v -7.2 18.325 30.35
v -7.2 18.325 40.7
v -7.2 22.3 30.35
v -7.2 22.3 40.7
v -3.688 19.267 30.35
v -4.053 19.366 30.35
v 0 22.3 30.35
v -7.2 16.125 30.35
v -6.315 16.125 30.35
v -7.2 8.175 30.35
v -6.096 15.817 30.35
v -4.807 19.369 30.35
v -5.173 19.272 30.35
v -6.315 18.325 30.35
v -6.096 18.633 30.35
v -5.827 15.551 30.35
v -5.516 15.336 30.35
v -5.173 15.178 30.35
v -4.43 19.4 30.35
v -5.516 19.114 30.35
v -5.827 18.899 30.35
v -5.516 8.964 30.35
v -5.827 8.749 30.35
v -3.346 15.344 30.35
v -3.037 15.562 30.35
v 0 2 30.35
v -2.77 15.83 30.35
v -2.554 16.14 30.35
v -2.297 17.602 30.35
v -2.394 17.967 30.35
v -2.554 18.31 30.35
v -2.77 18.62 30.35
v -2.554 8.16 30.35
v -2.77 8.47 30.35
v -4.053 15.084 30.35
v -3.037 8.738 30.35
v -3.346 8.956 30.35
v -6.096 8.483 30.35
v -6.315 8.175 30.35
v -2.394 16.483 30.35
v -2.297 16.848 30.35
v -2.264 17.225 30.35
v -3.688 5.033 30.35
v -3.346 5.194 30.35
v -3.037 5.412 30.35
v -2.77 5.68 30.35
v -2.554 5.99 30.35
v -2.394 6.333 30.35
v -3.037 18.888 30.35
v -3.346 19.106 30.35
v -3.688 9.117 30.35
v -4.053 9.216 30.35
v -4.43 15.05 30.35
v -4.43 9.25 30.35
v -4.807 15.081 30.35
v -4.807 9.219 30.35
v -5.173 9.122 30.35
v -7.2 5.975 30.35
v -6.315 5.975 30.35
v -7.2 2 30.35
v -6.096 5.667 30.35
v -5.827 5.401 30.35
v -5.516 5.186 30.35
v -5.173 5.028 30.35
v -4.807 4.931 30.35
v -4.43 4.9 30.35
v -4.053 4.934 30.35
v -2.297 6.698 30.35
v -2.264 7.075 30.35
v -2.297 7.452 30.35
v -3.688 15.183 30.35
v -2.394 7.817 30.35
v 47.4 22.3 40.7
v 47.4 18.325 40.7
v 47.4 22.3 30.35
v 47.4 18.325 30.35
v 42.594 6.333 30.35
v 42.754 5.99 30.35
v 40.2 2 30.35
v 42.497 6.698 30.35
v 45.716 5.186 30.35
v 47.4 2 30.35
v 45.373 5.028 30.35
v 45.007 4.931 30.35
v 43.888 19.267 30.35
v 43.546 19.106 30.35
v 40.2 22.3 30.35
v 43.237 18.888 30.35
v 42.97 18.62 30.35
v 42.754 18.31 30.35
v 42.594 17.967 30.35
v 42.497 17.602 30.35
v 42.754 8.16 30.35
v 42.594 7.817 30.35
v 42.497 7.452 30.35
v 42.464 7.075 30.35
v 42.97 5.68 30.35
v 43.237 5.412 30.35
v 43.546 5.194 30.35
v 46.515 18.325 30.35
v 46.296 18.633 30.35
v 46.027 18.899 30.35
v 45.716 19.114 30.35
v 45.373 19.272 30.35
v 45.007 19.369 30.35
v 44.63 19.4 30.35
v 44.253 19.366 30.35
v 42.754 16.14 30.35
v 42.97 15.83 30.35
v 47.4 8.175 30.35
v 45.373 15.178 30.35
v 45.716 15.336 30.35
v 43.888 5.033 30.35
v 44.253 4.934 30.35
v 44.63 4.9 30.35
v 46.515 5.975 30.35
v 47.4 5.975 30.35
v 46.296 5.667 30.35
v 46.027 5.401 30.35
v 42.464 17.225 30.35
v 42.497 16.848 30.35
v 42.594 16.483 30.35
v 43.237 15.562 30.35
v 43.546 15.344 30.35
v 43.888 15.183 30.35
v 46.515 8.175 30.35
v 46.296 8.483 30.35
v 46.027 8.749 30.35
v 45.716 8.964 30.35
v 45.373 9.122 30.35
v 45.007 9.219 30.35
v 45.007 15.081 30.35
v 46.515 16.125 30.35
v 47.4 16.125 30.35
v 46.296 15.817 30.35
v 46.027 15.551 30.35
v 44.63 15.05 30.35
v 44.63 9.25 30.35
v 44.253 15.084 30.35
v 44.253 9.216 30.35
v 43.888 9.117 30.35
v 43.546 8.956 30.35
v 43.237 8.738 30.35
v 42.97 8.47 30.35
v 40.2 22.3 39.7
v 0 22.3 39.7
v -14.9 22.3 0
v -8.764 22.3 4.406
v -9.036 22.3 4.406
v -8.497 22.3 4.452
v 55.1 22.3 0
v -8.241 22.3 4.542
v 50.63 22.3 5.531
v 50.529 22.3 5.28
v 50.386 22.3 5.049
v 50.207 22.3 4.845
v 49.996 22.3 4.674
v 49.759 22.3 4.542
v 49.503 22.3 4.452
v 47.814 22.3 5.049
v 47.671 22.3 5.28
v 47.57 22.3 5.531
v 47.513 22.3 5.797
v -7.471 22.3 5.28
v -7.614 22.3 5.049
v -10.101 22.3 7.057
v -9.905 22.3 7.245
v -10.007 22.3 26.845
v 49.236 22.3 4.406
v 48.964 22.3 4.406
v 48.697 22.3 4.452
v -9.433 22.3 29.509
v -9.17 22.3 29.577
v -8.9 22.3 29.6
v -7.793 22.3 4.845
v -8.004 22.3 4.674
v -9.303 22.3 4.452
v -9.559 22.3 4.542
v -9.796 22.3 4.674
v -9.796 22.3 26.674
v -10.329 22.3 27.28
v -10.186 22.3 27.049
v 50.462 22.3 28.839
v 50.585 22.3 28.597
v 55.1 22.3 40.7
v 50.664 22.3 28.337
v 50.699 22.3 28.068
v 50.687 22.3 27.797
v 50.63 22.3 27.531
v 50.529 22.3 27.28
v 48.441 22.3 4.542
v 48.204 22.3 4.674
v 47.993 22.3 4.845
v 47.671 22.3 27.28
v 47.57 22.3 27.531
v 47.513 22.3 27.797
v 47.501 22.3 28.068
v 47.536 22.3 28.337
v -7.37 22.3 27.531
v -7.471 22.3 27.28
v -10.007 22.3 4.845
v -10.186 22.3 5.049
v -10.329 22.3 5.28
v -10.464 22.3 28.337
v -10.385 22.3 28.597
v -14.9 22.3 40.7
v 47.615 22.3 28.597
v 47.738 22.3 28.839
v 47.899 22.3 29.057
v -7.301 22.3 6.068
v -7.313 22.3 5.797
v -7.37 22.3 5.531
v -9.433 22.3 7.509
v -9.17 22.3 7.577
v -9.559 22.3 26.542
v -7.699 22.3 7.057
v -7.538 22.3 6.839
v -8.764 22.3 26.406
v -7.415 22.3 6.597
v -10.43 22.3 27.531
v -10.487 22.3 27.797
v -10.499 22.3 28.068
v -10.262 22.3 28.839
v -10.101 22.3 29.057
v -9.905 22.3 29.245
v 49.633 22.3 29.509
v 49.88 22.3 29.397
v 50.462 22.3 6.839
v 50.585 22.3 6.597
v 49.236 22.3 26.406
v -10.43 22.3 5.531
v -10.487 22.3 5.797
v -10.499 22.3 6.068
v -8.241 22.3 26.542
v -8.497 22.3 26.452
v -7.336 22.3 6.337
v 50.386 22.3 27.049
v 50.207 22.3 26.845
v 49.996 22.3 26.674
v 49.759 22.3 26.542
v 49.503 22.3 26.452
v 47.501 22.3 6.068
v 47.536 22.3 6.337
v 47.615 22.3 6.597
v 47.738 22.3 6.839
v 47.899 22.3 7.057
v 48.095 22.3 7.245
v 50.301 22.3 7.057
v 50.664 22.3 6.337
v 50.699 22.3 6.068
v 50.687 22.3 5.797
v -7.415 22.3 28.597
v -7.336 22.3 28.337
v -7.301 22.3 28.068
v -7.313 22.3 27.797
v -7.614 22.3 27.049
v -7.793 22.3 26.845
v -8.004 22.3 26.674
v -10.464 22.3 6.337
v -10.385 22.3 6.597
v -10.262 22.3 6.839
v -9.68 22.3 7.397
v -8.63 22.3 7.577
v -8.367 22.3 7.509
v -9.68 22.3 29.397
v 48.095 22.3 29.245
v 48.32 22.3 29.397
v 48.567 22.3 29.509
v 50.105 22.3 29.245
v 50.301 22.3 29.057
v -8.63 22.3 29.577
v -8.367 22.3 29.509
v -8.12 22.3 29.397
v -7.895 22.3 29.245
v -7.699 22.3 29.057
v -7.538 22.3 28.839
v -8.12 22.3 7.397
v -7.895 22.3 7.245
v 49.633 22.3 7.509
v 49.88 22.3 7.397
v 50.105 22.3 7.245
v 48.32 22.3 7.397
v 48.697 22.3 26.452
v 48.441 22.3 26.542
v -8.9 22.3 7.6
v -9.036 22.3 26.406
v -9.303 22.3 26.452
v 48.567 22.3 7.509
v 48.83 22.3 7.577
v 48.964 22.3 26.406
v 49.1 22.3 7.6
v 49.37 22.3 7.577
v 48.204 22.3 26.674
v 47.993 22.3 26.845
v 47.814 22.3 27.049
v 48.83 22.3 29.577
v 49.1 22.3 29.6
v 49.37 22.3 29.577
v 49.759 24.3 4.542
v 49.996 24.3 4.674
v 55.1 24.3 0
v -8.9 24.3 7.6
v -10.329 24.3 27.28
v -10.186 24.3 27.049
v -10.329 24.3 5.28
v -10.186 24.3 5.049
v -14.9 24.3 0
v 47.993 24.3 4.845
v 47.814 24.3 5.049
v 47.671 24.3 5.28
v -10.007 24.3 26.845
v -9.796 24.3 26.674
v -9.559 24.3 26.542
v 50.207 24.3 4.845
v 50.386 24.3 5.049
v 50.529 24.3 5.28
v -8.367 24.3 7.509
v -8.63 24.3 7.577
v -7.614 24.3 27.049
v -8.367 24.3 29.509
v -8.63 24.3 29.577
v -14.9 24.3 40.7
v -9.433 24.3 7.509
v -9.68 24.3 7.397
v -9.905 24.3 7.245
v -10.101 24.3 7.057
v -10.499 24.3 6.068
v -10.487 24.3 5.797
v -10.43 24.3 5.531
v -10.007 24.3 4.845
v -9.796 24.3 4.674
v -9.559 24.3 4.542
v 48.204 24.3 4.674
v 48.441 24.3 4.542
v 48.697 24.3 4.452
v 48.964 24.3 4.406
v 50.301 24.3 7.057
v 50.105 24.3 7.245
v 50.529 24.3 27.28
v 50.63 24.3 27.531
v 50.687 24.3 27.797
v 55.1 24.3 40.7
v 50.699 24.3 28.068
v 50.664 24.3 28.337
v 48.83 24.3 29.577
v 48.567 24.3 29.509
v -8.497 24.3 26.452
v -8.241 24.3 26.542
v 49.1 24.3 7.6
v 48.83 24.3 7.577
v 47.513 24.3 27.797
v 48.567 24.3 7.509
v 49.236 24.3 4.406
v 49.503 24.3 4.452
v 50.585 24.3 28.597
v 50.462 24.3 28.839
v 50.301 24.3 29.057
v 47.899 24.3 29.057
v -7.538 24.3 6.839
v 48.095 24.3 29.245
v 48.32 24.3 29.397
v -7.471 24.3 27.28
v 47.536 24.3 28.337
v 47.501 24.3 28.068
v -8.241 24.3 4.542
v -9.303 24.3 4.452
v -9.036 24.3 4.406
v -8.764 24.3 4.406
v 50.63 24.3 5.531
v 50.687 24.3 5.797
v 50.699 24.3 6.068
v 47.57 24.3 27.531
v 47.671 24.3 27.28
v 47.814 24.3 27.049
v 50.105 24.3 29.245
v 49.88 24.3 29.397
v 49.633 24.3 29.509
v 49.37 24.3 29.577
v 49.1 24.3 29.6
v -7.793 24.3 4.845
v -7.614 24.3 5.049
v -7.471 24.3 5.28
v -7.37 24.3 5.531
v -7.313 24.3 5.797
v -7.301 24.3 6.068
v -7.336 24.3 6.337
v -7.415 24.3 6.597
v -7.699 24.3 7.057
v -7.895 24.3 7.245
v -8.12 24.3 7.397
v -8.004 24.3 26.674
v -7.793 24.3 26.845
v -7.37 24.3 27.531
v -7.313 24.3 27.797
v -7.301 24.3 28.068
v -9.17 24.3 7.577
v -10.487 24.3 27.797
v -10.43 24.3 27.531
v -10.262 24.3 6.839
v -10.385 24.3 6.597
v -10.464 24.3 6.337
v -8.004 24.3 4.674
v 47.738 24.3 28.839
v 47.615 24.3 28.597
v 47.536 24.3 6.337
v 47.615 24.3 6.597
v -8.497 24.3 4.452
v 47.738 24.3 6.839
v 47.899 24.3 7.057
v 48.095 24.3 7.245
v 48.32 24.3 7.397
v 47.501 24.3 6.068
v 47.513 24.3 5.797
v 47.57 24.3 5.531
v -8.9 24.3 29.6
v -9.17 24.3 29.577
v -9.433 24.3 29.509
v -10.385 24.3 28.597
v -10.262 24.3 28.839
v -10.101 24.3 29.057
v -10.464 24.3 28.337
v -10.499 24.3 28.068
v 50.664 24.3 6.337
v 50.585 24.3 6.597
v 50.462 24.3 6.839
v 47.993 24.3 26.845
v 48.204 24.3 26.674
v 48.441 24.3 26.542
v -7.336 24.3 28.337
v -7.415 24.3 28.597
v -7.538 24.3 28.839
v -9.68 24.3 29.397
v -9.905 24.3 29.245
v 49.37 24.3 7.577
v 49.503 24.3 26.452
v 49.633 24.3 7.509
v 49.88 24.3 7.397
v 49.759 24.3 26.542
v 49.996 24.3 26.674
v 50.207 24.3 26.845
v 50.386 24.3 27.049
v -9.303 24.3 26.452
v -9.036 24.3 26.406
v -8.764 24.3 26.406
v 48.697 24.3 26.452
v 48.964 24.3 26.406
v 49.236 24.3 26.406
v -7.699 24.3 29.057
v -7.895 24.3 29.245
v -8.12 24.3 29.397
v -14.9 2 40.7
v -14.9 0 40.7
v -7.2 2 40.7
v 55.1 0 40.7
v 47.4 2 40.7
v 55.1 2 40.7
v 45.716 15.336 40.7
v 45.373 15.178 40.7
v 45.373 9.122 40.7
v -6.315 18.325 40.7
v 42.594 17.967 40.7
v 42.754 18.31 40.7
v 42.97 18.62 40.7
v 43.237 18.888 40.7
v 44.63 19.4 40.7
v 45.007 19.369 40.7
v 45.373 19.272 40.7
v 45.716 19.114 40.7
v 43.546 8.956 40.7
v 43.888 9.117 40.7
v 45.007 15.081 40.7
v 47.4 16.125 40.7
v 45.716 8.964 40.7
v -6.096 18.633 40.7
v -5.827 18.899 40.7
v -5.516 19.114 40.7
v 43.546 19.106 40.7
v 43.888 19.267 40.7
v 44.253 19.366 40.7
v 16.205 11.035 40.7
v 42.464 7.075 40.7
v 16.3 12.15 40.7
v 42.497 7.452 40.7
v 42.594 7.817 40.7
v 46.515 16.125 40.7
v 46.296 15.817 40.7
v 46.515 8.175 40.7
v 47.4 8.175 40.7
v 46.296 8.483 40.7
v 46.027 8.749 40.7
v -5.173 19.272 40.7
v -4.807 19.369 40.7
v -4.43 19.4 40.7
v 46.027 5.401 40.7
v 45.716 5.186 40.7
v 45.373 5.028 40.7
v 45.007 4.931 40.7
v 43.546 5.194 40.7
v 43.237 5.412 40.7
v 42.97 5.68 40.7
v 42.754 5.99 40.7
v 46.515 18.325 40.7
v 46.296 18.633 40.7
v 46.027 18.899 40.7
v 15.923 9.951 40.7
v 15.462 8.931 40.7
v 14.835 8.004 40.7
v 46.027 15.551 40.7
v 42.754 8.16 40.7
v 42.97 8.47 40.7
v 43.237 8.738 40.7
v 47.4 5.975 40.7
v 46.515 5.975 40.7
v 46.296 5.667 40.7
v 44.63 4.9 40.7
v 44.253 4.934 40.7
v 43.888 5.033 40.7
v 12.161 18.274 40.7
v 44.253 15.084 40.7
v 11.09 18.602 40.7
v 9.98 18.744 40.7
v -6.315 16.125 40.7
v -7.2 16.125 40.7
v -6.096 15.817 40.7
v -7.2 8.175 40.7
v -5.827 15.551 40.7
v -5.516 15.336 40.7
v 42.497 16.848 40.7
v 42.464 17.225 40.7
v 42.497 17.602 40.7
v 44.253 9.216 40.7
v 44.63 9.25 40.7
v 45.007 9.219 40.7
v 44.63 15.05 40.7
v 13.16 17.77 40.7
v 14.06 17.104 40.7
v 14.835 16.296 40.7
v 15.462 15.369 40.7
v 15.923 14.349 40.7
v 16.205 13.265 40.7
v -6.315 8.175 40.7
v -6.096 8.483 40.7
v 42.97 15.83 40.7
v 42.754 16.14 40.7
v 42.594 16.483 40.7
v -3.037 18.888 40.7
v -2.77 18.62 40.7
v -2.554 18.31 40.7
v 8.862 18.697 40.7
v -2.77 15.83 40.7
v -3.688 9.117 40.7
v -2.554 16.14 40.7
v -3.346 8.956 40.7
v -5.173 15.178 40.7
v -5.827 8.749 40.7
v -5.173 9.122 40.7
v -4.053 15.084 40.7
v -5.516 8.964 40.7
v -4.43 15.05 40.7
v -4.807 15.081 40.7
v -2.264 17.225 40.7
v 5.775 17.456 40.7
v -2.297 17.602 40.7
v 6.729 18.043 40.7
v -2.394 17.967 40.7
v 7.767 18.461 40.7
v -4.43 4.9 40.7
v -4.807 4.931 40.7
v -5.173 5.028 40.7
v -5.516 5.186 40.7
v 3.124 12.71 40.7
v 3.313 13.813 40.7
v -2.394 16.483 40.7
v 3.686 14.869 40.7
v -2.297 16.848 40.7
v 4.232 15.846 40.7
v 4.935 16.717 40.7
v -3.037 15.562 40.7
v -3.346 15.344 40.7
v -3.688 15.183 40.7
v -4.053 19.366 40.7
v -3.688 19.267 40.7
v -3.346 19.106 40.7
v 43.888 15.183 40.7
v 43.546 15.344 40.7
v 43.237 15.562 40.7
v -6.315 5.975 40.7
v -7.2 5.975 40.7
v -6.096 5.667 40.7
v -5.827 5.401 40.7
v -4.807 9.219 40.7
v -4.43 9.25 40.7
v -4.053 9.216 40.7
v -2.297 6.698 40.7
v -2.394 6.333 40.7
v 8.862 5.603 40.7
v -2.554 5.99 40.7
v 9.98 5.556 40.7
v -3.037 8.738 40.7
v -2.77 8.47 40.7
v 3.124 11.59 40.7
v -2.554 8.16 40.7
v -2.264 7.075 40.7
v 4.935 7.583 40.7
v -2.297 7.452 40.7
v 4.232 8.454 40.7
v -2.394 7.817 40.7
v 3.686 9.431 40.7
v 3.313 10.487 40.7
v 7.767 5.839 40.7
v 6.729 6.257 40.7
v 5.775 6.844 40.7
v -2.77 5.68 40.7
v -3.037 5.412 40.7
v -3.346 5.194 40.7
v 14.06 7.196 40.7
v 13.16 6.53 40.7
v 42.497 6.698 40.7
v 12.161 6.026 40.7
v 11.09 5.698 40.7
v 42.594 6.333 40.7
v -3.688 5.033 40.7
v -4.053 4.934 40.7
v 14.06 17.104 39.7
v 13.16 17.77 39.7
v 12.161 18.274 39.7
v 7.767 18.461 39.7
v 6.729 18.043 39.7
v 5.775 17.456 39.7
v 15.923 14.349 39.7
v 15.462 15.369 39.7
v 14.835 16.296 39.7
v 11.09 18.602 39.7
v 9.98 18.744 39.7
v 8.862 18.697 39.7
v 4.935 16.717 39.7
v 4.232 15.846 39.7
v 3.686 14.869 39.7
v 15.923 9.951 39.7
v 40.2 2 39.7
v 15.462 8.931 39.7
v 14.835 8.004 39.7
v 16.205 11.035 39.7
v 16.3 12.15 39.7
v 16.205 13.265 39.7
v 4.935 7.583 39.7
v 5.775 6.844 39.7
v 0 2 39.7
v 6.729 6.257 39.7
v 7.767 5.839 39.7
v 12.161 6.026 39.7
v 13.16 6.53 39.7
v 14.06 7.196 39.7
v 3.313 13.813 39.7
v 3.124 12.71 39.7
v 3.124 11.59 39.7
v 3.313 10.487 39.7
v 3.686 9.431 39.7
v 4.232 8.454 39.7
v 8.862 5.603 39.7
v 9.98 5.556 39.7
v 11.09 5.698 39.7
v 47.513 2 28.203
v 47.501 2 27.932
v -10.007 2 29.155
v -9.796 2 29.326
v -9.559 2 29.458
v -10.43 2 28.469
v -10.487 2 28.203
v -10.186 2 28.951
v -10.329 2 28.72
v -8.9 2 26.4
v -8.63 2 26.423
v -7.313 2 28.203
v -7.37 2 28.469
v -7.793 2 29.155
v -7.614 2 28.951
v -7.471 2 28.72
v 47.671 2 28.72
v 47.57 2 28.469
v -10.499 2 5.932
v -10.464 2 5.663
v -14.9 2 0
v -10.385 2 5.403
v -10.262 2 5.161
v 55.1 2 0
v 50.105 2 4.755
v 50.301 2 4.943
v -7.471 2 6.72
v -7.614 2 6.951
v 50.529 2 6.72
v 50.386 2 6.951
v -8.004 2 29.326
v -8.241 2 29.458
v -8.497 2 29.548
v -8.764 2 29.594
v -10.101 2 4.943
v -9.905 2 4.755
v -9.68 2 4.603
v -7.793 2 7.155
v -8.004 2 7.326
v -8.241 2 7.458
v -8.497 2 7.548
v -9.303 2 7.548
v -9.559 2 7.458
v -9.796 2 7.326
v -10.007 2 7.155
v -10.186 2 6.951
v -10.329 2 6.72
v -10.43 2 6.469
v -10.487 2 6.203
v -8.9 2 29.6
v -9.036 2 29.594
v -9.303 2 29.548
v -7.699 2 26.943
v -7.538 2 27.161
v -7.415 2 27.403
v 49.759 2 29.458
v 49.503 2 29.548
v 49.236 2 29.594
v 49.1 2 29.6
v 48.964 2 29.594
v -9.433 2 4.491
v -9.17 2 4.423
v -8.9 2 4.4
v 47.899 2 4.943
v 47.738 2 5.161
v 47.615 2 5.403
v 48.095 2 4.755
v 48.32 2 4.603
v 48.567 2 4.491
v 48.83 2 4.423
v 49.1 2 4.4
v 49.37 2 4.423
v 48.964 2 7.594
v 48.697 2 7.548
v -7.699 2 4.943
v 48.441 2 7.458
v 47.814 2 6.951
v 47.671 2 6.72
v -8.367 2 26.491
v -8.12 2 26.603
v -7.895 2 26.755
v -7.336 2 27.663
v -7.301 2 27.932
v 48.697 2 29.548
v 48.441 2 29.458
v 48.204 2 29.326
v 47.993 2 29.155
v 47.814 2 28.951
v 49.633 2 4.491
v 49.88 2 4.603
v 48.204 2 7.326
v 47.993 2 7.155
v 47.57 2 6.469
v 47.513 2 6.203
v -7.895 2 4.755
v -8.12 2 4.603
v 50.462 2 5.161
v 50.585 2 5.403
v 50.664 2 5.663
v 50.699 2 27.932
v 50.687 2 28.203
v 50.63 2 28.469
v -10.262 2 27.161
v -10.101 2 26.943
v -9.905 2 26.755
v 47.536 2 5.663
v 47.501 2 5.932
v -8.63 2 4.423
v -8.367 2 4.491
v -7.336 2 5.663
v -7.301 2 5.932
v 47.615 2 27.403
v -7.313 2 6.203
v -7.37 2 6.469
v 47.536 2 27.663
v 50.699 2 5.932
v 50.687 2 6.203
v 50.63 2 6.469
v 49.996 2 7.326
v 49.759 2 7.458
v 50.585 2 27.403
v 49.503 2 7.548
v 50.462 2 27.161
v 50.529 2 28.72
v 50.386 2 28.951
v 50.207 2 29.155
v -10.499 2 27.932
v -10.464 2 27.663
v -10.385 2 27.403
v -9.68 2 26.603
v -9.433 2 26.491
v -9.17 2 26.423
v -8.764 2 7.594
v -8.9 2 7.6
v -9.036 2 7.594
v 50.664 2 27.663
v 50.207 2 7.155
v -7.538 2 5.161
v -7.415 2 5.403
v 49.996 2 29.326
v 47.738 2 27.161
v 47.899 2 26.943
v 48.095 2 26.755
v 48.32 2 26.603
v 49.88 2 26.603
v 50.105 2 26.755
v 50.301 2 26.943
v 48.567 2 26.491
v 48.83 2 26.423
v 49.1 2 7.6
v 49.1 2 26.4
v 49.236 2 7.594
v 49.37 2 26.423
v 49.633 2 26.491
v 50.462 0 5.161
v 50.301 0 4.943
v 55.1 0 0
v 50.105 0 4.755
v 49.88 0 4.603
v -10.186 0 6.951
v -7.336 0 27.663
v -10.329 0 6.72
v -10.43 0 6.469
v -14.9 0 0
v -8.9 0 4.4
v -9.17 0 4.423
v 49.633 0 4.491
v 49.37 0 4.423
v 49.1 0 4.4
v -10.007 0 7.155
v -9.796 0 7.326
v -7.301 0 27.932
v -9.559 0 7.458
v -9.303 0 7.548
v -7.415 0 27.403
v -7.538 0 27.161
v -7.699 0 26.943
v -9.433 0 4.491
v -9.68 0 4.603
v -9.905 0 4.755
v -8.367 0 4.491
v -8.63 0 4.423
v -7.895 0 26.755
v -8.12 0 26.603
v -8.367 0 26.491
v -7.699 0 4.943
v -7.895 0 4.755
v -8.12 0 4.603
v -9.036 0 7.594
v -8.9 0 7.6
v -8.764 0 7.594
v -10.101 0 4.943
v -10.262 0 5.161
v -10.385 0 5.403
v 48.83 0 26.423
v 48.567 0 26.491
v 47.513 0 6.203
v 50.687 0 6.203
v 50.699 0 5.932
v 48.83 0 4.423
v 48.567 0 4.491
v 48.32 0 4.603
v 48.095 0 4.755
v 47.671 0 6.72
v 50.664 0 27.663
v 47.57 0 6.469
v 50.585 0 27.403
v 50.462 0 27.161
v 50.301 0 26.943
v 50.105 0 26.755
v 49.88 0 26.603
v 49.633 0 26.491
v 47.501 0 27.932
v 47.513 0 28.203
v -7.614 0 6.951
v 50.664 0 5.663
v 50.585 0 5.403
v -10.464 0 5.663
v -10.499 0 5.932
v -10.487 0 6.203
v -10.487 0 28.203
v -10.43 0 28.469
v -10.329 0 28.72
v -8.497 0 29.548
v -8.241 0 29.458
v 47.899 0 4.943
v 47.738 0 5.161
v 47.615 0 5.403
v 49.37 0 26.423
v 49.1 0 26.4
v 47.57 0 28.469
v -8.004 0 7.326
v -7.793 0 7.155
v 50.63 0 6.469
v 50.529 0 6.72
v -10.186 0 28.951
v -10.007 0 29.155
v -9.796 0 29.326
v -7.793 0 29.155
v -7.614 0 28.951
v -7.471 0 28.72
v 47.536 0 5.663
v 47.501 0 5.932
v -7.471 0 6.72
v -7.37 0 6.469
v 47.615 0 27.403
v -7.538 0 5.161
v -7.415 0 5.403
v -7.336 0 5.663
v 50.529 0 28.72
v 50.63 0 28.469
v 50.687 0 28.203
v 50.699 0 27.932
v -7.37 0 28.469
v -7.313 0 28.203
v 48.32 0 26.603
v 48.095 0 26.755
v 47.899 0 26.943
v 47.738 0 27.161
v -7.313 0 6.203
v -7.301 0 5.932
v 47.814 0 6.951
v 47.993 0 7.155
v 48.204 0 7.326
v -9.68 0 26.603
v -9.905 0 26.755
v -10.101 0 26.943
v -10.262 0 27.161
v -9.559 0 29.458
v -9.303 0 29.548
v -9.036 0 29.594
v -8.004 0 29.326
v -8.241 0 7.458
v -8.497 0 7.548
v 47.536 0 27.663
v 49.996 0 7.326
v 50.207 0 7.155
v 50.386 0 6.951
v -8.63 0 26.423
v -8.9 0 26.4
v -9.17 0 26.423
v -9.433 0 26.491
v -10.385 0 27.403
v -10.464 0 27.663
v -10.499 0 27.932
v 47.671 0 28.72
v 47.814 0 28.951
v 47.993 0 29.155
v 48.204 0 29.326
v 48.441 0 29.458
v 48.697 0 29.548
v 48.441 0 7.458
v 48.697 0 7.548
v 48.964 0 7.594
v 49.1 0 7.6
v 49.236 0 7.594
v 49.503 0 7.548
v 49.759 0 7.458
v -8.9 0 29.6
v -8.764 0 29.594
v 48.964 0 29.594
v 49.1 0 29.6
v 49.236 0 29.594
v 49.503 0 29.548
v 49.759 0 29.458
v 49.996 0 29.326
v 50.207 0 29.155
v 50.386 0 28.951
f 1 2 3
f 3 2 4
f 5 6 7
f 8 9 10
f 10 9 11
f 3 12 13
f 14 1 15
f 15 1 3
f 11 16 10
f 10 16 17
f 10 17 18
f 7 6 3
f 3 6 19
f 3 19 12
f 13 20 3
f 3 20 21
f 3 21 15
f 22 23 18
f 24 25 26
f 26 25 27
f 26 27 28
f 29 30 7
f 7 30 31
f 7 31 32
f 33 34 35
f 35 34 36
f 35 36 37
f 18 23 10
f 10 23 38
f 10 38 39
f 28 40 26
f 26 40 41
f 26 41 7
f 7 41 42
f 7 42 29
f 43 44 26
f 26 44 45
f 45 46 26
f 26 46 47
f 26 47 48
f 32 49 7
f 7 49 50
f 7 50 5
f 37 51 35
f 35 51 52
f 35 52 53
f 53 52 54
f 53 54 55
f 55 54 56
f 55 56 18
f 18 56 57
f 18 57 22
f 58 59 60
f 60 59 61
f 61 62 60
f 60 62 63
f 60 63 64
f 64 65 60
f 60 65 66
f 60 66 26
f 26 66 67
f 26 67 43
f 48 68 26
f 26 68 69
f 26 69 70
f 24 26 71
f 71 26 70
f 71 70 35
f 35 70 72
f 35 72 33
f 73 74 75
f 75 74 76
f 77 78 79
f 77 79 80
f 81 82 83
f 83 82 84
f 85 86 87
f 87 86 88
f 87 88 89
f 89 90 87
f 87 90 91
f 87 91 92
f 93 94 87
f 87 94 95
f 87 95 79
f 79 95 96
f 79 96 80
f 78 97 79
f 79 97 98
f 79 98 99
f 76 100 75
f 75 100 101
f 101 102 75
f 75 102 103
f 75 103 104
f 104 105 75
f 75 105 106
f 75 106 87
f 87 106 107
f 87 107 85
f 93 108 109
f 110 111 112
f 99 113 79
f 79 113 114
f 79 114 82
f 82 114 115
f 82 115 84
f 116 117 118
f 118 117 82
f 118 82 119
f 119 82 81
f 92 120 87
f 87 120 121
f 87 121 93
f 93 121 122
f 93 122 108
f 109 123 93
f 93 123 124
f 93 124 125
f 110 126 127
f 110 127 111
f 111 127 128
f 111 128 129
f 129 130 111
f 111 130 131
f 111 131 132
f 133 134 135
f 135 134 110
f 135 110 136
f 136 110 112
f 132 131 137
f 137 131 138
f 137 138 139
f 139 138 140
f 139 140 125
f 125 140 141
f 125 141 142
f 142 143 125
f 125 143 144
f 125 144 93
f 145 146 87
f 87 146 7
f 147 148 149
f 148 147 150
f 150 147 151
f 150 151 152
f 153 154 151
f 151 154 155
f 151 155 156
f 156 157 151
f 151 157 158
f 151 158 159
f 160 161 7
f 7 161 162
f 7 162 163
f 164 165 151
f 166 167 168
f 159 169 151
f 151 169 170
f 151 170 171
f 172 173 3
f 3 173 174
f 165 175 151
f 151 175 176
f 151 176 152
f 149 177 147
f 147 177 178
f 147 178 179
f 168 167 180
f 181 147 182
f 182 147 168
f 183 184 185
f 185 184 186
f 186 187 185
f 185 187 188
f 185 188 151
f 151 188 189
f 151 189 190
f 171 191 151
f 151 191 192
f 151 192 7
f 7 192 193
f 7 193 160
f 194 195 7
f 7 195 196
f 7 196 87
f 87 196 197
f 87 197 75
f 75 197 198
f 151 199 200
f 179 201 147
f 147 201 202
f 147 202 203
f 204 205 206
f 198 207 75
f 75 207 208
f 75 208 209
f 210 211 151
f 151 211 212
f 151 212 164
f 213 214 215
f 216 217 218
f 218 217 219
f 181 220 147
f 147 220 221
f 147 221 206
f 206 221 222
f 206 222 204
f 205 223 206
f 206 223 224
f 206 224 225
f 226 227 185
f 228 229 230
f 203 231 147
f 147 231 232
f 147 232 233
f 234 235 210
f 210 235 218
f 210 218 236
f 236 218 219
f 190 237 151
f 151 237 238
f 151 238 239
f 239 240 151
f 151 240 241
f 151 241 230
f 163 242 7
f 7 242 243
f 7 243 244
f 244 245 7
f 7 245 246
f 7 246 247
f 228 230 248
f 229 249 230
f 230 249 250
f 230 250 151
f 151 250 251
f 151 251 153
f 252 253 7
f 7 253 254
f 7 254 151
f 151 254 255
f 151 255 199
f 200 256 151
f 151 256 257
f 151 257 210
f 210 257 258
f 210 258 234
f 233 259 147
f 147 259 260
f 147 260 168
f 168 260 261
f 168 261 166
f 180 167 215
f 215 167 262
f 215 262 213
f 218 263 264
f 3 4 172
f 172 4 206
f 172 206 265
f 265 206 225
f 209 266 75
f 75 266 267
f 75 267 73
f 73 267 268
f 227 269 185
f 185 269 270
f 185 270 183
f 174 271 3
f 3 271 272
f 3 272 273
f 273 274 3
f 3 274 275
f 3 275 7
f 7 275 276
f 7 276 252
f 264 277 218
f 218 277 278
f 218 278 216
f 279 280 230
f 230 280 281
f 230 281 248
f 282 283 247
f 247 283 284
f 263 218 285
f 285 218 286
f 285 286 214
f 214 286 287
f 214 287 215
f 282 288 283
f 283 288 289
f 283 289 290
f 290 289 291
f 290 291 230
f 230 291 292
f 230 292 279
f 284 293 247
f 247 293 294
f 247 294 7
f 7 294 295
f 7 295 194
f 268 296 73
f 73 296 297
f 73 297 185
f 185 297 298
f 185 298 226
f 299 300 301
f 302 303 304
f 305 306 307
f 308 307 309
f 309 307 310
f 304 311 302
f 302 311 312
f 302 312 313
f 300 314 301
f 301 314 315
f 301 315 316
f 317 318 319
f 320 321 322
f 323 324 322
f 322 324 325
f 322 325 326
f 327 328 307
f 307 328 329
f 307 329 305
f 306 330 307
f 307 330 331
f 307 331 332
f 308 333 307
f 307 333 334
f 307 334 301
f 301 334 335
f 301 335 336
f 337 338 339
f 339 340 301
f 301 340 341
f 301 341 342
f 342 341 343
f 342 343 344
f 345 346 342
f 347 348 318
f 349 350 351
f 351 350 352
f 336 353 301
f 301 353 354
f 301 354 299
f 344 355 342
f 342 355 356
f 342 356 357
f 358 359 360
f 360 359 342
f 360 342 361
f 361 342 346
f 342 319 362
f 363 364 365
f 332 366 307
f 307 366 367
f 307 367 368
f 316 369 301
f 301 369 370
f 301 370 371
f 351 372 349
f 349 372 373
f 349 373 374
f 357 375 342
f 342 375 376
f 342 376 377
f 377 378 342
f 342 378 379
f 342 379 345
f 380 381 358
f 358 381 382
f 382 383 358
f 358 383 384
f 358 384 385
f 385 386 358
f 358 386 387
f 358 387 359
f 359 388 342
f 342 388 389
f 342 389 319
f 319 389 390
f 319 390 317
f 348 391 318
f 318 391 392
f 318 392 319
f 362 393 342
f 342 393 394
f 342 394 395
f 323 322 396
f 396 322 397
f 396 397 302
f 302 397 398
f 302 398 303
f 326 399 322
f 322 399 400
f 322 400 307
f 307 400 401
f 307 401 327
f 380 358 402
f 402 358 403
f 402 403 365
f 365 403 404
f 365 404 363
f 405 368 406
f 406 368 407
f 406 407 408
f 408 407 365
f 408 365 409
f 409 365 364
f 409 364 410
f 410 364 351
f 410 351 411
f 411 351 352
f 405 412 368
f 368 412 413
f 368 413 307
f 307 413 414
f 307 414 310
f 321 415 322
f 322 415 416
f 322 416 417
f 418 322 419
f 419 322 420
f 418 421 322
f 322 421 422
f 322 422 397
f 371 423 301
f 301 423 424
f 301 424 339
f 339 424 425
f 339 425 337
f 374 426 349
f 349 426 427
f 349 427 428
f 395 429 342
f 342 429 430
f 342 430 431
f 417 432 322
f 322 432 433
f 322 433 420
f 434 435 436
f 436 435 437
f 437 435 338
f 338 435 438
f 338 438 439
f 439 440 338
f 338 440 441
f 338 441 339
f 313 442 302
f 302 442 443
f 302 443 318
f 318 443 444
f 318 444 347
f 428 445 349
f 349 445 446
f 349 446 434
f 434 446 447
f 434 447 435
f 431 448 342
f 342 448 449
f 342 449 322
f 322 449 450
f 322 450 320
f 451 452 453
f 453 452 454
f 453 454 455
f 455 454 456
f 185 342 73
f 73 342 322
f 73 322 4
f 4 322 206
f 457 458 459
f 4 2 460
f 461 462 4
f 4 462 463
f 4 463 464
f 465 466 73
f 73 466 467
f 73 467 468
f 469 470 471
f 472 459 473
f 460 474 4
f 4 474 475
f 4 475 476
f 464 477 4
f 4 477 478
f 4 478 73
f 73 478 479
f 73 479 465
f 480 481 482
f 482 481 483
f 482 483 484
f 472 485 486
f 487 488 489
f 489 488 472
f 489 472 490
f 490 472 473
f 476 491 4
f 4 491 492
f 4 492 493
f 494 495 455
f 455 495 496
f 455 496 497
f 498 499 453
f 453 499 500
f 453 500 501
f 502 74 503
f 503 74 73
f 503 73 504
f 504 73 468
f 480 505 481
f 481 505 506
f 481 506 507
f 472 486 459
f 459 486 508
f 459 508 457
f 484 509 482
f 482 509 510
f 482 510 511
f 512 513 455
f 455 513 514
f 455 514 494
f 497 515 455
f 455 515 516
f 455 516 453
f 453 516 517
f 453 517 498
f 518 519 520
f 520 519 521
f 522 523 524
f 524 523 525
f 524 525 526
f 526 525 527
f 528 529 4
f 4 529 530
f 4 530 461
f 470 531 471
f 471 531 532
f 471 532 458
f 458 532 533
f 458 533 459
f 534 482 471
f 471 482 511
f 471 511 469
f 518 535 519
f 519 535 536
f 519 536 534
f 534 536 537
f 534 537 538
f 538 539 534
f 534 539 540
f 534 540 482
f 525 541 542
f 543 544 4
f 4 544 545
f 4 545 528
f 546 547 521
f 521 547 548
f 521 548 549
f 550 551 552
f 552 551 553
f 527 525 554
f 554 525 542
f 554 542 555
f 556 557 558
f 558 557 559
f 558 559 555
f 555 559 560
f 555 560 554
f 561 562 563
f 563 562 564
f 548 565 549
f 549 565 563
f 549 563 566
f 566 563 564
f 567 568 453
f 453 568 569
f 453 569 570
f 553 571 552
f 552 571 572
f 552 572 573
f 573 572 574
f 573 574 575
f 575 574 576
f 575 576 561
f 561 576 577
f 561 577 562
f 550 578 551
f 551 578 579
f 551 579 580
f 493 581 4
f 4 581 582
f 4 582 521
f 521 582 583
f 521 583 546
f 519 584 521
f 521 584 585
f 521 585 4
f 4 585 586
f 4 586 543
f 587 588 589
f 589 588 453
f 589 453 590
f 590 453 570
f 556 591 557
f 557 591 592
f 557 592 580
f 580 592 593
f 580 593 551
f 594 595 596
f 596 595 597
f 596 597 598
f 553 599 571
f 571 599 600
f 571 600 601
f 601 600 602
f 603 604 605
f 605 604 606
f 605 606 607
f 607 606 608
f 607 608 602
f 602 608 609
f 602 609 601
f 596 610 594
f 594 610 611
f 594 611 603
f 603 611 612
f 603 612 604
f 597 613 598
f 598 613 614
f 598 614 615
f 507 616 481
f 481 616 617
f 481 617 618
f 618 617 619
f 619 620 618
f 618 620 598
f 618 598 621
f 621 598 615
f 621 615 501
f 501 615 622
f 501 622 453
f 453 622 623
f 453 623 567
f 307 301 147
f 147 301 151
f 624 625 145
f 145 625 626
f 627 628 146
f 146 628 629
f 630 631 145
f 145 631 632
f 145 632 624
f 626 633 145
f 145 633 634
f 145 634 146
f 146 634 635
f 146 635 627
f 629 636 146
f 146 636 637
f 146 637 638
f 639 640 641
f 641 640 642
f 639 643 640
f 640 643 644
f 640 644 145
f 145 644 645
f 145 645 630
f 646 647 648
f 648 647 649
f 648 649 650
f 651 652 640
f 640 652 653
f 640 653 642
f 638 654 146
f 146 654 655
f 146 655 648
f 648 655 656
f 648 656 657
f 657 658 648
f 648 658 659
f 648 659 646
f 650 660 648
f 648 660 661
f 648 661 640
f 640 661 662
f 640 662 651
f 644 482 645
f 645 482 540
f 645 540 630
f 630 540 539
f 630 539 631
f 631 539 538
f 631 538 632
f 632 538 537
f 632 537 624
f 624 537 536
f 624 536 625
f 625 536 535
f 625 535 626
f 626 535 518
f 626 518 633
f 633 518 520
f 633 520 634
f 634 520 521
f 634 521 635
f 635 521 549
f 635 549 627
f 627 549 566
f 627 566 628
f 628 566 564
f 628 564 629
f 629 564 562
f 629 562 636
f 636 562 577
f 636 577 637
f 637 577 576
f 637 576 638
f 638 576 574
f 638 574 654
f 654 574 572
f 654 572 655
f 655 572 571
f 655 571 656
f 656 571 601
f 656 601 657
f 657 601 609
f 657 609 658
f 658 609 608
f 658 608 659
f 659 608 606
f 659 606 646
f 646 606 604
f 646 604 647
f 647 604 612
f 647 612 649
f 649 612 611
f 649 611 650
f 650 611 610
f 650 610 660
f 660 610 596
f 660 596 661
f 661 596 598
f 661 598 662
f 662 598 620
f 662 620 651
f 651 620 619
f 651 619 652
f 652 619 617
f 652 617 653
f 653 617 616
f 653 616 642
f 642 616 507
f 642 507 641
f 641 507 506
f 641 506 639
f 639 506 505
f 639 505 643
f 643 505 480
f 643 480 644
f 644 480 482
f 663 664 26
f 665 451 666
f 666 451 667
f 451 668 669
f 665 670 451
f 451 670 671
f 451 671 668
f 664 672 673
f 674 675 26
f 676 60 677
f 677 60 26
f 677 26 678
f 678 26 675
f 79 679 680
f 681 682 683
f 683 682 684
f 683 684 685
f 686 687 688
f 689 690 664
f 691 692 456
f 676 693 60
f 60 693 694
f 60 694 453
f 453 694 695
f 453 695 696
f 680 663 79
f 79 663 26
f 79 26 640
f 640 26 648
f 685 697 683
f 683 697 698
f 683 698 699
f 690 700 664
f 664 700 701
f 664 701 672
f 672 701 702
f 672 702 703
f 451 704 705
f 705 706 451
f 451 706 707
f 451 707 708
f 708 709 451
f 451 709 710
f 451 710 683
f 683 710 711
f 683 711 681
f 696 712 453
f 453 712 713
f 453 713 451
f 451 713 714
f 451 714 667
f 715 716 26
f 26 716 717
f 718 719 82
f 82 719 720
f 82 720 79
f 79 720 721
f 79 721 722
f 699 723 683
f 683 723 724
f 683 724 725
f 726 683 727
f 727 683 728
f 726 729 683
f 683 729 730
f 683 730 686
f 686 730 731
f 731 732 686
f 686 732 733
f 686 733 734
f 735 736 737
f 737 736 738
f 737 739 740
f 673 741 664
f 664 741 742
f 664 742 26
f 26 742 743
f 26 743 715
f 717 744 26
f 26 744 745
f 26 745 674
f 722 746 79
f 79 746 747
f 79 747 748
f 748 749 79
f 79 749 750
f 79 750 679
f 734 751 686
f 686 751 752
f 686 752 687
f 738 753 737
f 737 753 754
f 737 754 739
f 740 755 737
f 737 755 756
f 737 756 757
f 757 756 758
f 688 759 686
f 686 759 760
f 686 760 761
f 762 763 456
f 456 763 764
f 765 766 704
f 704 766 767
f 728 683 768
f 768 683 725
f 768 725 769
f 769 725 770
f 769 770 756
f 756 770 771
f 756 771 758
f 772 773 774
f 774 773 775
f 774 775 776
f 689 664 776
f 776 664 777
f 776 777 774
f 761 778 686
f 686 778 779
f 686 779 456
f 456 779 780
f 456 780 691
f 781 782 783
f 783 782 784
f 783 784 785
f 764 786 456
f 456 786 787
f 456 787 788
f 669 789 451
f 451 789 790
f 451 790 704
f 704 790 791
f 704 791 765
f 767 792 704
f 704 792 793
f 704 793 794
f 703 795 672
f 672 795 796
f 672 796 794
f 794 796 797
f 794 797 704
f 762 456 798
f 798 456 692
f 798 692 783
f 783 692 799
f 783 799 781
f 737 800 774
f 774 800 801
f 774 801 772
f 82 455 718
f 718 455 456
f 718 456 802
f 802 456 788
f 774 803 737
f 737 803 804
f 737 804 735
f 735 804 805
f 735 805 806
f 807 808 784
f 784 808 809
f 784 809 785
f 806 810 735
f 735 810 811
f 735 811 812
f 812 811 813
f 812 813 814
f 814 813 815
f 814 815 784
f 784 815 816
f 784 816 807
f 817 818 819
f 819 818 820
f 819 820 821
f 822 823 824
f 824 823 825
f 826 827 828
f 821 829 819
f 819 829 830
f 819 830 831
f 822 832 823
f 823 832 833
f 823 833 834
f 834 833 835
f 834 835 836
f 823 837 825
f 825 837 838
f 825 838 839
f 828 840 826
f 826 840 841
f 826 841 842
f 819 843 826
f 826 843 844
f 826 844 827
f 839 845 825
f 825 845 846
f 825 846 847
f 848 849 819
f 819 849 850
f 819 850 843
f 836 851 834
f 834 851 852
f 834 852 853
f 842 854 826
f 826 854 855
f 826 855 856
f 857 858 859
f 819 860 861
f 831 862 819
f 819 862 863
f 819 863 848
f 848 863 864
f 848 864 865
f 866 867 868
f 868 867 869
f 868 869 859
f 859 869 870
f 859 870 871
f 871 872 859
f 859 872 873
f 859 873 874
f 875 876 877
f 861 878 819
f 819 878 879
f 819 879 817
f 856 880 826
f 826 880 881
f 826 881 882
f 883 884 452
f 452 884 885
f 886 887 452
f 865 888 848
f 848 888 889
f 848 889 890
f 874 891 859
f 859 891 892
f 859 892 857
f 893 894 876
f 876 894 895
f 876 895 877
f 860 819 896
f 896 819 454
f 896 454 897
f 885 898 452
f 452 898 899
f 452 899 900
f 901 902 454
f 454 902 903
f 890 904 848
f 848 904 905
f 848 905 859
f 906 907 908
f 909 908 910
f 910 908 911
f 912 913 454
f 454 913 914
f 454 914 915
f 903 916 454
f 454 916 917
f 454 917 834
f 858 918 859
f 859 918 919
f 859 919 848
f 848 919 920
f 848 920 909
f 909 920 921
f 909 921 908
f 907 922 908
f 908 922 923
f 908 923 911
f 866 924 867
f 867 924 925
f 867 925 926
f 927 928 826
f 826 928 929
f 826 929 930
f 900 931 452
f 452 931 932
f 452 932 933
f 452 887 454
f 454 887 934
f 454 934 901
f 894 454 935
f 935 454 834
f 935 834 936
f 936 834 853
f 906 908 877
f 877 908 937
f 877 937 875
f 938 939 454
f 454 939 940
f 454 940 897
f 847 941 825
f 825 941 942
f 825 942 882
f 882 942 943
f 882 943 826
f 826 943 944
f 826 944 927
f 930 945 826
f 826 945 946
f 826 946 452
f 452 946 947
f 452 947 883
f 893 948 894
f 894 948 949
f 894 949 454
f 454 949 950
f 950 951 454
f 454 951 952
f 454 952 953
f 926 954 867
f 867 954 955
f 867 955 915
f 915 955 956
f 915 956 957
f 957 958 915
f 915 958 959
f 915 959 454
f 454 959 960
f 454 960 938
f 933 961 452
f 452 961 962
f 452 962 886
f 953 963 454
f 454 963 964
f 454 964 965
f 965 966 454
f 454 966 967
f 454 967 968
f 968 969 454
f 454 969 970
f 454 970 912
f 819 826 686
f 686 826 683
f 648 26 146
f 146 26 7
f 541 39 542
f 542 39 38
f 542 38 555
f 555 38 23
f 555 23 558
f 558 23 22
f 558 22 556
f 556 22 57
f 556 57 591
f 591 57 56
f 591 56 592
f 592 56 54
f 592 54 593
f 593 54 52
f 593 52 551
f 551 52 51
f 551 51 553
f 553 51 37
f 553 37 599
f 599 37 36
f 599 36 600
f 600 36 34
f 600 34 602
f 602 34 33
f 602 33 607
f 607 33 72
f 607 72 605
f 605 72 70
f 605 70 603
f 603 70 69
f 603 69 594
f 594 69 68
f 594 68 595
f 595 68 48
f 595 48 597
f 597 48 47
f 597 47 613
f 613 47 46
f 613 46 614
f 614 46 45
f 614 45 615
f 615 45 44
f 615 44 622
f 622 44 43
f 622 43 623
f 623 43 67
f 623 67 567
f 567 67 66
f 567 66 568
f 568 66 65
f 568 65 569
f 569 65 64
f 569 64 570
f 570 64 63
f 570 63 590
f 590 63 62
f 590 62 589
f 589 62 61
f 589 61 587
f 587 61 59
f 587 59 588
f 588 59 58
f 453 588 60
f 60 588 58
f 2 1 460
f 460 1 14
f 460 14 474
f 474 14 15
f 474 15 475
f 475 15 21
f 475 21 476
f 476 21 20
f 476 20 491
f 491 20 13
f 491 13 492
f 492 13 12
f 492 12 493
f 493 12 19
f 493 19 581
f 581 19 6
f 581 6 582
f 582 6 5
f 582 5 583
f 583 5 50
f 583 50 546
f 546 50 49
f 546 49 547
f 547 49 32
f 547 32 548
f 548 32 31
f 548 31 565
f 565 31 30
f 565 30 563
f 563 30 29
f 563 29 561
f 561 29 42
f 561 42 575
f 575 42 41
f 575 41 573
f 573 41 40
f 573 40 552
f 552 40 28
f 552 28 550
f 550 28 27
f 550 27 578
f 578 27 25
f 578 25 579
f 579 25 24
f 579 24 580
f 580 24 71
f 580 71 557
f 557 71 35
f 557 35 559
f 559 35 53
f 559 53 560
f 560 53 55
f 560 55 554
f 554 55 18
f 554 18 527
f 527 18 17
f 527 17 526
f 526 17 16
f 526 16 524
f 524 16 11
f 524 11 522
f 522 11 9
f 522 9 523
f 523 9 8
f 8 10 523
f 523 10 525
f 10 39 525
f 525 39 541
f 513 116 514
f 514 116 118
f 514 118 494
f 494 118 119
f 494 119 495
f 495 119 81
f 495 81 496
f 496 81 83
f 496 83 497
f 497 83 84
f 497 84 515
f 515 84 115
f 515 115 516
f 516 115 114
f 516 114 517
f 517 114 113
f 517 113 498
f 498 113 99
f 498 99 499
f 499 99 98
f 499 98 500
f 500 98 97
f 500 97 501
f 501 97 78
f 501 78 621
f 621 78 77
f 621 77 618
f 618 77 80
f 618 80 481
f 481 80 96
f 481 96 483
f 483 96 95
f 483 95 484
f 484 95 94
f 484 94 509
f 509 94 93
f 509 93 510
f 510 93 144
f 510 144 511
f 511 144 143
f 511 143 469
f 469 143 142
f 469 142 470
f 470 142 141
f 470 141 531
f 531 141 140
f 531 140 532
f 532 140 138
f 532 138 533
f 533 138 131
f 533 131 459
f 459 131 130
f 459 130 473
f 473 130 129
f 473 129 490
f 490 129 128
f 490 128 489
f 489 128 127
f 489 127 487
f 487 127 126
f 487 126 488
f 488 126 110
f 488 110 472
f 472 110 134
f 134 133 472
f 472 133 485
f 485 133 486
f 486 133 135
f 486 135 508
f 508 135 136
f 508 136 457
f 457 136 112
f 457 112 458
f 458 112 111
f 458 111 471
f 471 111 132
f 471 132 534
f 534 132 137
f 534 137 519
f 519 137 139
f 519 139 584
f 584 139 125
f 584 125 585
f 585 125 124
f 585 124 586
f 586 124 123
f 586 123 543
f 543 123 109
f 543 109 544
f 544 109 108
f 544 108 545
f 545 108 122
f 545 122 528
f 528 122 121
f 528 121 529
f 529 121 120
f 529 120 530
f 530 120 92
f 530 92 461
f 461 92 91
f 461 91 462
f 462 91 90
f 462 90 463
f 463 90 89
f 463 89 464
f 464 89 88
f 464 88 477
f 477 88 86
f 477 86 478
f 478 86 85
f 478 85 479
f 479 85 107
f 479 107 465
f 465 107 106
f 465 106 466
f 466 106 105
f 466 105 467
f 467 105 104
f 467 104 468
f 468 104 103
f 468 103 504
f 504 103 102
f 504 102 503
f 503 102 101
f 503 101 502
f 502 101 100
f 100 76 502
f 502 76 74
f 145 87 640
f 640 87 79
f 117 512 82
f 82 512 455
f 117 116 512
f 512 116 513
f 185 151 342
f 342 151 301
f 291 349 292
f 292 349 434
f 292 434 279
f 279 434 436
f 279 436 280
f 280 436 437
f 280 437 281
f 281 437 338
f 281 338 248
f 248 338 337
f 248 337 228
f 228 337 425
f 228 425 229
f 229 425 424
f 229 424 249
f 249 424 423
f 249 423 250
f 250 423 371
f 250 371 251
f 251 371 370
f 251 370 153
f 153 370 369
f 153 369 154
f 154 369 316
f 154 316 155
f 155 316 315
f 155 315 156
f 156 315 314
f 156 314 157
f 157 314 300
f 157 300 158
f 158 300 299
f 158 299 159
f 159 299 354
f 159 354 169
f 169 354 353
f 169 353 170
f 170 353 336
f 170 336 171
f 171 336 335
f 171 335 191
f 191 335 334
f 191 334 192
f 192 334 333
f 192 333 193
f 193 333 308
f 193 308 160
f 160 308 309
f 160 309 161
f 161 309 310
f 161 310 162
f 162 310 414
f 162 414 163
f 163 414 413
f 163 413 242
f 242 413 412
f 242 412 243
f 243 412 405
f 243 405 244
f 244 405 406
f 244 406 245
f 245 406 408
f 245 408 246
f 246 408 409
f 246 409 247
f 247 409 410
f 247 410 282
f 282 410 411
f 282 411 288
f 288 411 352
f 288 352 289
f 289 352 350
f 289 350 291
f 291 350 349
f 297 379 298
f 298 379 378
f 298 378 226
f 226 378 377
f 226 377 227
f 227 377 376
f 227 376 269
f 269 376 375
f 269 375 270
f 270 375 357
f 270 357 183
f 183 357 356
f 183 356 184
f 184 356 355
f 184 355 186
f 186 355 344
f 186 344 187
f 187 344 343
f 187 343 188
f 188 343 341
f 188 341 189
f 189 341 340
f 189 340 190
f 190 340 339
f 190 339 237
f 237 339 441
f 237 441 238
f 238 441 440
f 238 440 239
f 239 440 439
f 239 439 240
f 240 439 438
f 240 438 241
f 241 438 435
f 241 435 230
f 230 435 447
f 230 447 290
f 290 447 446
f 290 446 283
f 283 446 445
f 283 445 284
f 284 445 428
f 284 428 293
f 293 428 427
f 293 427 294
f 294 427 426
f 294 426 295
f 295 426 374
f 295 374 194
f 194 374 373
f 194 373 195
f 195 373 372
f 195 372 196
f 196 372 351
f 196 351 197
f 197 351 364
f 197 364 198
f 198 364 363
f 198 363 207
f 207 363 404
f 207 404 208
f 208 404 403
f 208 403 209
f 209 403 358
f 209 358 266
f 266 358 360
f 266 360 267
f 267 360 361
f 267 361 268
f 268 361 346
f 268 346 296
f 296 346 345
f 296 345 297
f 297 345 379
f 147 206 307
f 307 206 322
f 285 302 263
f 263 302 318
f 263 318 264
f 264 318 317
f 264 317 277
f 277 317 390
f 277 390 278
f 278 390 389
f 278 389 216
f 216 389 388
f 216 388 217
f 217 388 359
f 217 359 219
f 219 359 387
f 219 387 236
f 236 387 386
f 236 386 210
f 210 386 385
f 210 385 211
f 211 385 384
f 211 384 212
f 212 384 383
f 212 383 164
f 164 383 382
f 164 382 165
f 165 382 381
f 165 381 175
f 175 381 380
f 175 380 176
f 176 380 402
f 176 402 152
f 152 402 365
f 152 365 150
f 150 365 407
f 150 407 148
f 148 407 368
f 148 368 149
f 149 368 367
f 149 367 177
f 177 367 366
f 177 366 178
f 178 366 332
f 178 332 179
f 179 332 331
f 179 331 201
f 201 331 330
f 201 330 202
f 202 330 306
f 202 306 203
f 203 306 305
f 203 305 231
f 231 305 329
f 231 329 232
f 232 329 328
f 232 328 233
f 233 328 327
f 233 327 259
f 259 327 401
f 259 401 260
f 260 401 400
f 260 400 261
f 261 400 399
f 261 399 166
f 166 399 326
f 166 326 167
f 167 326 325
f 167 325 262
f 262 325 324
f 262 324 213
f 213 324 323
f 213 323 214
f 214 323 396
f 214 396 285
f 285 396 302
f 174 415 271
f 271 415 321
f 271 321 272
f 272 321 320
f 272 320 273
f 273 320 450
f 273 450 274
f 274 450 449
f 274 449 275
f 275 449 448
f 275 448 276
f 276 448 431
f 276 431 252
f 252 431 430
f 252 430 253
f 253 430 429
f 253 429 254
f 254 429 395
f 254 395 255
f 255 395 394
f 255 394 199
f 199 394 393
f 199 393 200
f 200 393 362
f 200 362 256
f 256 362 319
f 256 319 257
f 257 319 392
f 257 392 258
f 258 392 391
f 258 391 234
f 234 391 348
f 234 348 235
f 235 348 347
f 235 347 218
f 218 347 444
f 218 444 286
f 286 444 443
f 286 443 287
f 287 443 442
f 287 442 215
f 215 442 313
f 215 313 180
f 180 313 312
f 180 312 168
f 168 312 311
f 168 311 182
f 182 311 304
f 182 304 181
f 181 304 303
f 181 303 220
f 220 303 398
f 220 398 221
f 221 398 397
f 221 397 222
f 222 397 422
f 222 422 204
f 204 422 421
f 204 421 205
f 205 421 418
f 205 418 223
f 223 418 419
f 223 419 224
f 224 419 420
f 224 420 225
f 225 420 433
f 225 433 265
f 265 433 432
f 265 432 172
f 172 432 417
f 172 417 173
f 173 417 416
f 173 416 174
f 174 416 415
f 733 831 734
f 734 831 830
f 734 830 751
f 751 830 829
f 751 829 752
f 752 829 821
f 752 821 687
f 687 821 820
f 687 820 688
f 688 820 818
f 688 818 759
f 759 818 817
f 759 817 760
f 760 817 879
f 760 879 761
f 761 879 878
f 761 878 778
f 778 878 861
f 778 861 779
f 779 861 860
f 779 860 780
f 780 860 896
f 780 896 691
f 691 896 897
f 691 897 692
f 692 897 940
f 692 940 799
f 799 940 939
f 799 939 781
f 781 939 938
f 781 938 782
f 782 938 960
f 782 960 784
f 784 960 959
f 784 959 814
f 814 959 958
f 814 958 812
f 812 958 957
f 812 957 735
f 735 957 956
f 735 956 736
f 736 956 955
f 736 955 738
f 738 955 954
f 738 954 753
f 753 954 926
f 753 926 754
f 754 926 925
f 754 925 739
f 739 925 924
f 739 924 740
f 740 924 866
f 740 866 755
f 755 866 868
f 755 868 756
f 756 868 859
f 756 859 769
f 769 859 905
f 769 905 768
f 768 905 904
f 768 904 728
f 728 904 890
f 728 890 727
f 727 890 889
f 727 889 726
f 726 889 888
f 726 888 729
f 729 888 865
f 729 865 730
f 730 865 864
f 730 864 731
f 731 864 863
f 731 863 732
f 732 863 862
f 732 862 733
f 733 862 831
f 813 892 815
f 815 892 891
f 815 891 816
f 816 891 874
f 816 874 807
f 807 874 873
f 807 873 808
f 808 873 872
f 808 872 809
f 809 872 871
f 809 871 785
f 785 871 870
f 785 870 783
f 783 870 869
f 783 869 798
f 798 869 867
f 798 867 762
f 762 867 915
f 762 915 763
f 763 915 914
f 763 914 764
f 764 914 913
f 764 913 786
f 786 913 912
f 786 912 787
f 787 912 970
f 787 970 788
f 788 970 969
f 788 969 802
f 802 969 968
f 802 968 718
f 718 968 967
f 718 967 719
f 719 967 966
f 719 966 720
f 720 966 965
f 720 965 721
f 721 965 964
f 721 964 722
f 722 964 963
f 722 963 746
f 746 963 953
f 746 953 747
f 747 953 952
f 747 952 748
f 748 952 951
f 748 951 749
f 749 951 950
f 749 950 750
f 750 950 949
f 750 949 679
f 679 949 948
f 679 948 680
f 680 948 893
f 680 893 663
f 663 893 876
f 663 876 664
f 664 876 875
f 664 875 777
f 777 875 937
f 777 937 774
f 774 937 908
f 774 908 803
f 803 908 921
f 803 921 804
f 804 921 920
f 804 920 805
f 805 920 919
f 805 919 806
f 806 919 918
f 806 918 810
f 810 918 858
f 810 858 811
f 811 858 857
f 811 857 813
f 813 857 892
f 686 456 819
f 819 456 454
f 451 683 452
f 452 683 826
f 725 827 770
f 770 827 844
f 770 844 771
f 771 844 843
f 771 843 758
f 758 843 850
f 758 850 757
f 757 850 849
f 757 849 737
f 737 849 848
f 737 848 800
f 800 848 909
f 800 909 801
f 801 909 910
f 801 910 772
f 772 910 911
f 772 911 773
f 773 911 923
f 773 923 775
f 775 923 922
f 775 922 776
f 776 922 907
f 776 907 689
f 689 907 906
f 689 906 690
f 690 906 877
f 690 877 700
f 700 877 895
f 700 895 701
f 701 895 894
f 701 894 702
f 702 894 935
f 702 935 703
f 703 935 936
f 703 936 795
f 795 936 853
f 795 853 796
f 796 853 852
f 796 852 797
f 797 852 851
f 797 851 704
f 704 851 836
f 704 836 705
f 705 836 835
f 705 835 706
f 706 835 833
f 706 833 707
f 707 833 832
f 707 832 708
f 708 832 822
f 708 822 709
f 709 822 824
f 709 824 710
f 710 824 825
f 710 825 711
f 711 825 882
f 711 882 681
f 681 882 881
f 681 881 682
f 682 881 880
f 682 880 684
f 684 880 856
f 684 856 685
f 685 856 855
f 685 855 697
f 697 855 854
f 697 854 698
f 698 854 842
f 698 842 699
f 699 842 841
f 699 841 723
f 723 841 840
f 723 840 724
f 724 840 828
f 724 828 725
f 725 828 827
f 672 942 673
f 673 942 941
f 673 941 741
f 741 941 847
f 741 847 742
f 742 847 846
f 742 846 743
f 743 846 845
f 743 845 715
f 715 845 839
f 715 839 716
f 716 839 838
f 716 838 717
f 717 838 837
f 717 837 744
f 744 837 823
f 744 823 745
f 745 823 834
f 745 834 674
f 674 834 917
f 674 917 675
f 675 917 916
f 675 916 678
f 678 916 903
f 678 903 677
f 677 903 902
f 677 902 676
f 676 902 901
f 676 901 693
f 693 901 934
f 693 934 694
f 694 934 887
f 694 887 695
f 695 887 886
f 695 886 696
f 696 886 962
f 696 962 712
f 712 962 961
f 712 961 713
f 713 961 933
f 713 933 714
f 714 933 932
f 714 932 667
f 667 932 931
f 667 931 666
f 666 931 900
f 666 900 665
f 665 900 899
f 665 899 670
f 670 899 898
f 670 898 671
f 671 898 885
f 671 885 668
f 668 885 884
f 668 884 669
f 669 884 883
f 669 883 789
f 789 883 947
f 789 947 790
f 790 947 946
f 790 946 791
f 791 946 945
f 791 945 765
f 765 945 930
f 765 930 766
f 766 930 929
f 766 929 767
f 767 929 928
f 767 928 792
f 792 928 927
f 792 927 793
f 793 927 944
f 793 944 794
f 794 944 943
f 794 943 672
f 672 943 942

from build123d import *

# Parameters (mm, degrees)
SKETCH1_W             = 40.2
SKETCH1_H             = 2
BOSS_EXTRUDE1_DEPTH   = 40.7
BOSS_EXTRUDE1_2_DEPTH = 40.7
BOSS_EXTRUDE3_START   = 40.7
SKETCH1_3_R           = 6.6
BOSS_EXTRUDE3_DEPTH   = 1
BOSS_EXTRUDE2_START   = -1
BOSS_EXTRUDE2_DEPTH   = 10.35
SKETCH4_R             = 1.6
BOSS_EXTRUDE4_DEPTH   = 2
BOSS_EXTRUDE5_START   = -22.3
SKETCH4_3_W           = 70
SKETCH4_3_H           = 40.7
SKETCH4_3_R           = 1.6
BOSS_EXTRUDE5_DEPTH   = 2


with BuildPart() as part:
    # Sketch1 → Boss-Extrude1 (new body)
    with BuildSketch(Plane.XY):
        with Locations((20.1, 23.3)):
            Rectangle(SKETCH1_W, SKETCH1_H)
    extrude(amount=BOSS_EXTRUDE1_DEPTH)



with BuildPart() as body_2:
    # Sketch1 → Boss-Extrude1 2 (new body)
    with BuildSketch(Plane.XY):
        Polygon((0, 2), (0, 0), (40.2, 0), (40.2, 2), (40.1, 2), (0.1, 2), align=None)
    extrude(amount=BOSS_EXTRUDE1_2_DEPTH)


with BuildPart() as part_1:
    add(part.part)

    add(body_2.part)  # Boss-Extrude3 merges body 2
    # Sketch1<3> → Boss-Extrude3 (add)
    with BuildSketch(Plane.XY.offset(BOSS_EXTRUDE3_START)):
        Polygon((0, 22.3), (0, 2), (0.1, 2), (40.1, 2), (40.2, 2), (40.2, 22.3), align=None)
        with Locations((9.7, 12.15)):
            Circle(SKETCH1_3_R, mode=Mode.SUBTRACT)
    extrude(amount=-BOSS_EXTRUDE3_DEPTH)

    # Sketch3 → Boss-Extrude2 (add)
    with BuildSketch(Plane(origin=(0, -15.7, 39.7), x_dir=(1, 0, 0), z_dir=(0, 0, -1)).offset(BOSS_EXTRUDE2_START)):
        with BuildLine():
            ThreePointArc((-6.315, -21.675), (-2.26366714, -22.775), (-6.315, -23.875))
            Line((-6.315, -23.875), (-7.2, -23.875))
            Line((-7.2, -23.875), (-7.2, -31.825))
            Line((-7.2, -31.825), (-6.315, -31.825))
            ThreePointArc((-6.315, -31.825), (-2.26366714, -32.925), (-6.315, -34.025))
            Line((-6.315, -34.025), (-7.2, -34.025))
            Line((-7.2, -34.025), (-7.2, -40))
            Line((-7.2, -40), (0, -40))
            Line((0, -40), (0, -15.7))
            Line((0, -15.7), (-7.2, -15.7))
            Line((-7.2, -15.7), (-7.2, -21.675))
            Line((-7.2, -21.675), (-6.315, -21.675))
        make_face()
    boss_extrude2 = extrude(amount=BOSS_EXTRUDE2_DEPTH)

    # Mirror1: Boss-Extrude2 across plane
    add(boss_extrude2.mirror(Plane(origin=(20.1, 0, 0), x_dir=(0, 0, 1), z_dir=(1, 0, 0))))

    # Sketch4 → Boss-Extrude4 (add)
    # profile 1 of 2: a face of its own
    with BuildSketch(Plane(origin=(0, 24.3, 0), x_dir=(1, 0, 0), z_dir=(0, 1, 0))):
        Polygon((0, 0), (-14.9, 0), (-14.9, -40.7), (-7.2, -40.7), (-7.2, -30.35), (0, -30.35), align=None)
        with Locations(Location((-8.9, -28, 0), (0, 0, 270))):
            Circle(SKETCH4_R, mode=Mode.SUBTRACT)
        with Locations(Location((-8.9, -6, 0), (0, 0, 270))):
            Circle(SKETCH4_R, mode=Mode.SUBTRACT)
    # profile 2 of 2: a face of its own
    with BuildSketch(Plane(origin=(0, 24.3, 0), x_dir=(1, 0, 0), z_dir=(0, 1, 0))):
        Polygon((55.1, 0), (40.2, 0), (40.2, -30.35), (47.4, -30.35), (47.4, -40.7), (55.1, -40.7), align=None)
        with Locations(Location((49.1, -28, 0), (0, 0, 270))):
            Circle(SKETCH4_R, mode=Mode.SUBTRACT)
        with Locations(Location((49.1, -6, 0), (0, 0, 270))):
            Circle(SKETCH4_R, mode=Mode.SUBTRACT)
    extrude(amount=-BOSS_EXTRUDE4_DEPTH)

    # Sketch4<3> → Boss-Extrude5 (add)
    with BuildSketch(Plane(origin=(0, 24.3, 0), x_dir=(1, 0, 0), z_dir=(0, 1, 0)).offset(BOSS_EXTRUDE5_START)):
        with Locations((20.1, -20.35)):
            Rectangle(SKETCH4_3_W, SKETCH4_3_H)
        with Locations(Location((-8.9, -6, 0), (0, 0, 270))):
            Circle(SKETCH4_3_R, mode=Mode.SUBTRACT)
        with Locations(Location((49.1, -6, 0), (0, 0, 270))):
            Circle(SKETCH4_3_R, mode=Mode.SUBTRACT)
        with Locations(Location((49.1, -28, 0), (0, 0, 270))):
            Circle(SKETCH4_3_R, mode=Mode.SUBTRACT)
        with Locations(Location((-8.9, -28, 0), (0, 0, 270))):
            Circle(SKETCH4_3_R, mode=Mode.SUBTRACT)
    extrude(amount=-BOSS_EXTRUDE5_DEPTH)


solid = part_1.part
